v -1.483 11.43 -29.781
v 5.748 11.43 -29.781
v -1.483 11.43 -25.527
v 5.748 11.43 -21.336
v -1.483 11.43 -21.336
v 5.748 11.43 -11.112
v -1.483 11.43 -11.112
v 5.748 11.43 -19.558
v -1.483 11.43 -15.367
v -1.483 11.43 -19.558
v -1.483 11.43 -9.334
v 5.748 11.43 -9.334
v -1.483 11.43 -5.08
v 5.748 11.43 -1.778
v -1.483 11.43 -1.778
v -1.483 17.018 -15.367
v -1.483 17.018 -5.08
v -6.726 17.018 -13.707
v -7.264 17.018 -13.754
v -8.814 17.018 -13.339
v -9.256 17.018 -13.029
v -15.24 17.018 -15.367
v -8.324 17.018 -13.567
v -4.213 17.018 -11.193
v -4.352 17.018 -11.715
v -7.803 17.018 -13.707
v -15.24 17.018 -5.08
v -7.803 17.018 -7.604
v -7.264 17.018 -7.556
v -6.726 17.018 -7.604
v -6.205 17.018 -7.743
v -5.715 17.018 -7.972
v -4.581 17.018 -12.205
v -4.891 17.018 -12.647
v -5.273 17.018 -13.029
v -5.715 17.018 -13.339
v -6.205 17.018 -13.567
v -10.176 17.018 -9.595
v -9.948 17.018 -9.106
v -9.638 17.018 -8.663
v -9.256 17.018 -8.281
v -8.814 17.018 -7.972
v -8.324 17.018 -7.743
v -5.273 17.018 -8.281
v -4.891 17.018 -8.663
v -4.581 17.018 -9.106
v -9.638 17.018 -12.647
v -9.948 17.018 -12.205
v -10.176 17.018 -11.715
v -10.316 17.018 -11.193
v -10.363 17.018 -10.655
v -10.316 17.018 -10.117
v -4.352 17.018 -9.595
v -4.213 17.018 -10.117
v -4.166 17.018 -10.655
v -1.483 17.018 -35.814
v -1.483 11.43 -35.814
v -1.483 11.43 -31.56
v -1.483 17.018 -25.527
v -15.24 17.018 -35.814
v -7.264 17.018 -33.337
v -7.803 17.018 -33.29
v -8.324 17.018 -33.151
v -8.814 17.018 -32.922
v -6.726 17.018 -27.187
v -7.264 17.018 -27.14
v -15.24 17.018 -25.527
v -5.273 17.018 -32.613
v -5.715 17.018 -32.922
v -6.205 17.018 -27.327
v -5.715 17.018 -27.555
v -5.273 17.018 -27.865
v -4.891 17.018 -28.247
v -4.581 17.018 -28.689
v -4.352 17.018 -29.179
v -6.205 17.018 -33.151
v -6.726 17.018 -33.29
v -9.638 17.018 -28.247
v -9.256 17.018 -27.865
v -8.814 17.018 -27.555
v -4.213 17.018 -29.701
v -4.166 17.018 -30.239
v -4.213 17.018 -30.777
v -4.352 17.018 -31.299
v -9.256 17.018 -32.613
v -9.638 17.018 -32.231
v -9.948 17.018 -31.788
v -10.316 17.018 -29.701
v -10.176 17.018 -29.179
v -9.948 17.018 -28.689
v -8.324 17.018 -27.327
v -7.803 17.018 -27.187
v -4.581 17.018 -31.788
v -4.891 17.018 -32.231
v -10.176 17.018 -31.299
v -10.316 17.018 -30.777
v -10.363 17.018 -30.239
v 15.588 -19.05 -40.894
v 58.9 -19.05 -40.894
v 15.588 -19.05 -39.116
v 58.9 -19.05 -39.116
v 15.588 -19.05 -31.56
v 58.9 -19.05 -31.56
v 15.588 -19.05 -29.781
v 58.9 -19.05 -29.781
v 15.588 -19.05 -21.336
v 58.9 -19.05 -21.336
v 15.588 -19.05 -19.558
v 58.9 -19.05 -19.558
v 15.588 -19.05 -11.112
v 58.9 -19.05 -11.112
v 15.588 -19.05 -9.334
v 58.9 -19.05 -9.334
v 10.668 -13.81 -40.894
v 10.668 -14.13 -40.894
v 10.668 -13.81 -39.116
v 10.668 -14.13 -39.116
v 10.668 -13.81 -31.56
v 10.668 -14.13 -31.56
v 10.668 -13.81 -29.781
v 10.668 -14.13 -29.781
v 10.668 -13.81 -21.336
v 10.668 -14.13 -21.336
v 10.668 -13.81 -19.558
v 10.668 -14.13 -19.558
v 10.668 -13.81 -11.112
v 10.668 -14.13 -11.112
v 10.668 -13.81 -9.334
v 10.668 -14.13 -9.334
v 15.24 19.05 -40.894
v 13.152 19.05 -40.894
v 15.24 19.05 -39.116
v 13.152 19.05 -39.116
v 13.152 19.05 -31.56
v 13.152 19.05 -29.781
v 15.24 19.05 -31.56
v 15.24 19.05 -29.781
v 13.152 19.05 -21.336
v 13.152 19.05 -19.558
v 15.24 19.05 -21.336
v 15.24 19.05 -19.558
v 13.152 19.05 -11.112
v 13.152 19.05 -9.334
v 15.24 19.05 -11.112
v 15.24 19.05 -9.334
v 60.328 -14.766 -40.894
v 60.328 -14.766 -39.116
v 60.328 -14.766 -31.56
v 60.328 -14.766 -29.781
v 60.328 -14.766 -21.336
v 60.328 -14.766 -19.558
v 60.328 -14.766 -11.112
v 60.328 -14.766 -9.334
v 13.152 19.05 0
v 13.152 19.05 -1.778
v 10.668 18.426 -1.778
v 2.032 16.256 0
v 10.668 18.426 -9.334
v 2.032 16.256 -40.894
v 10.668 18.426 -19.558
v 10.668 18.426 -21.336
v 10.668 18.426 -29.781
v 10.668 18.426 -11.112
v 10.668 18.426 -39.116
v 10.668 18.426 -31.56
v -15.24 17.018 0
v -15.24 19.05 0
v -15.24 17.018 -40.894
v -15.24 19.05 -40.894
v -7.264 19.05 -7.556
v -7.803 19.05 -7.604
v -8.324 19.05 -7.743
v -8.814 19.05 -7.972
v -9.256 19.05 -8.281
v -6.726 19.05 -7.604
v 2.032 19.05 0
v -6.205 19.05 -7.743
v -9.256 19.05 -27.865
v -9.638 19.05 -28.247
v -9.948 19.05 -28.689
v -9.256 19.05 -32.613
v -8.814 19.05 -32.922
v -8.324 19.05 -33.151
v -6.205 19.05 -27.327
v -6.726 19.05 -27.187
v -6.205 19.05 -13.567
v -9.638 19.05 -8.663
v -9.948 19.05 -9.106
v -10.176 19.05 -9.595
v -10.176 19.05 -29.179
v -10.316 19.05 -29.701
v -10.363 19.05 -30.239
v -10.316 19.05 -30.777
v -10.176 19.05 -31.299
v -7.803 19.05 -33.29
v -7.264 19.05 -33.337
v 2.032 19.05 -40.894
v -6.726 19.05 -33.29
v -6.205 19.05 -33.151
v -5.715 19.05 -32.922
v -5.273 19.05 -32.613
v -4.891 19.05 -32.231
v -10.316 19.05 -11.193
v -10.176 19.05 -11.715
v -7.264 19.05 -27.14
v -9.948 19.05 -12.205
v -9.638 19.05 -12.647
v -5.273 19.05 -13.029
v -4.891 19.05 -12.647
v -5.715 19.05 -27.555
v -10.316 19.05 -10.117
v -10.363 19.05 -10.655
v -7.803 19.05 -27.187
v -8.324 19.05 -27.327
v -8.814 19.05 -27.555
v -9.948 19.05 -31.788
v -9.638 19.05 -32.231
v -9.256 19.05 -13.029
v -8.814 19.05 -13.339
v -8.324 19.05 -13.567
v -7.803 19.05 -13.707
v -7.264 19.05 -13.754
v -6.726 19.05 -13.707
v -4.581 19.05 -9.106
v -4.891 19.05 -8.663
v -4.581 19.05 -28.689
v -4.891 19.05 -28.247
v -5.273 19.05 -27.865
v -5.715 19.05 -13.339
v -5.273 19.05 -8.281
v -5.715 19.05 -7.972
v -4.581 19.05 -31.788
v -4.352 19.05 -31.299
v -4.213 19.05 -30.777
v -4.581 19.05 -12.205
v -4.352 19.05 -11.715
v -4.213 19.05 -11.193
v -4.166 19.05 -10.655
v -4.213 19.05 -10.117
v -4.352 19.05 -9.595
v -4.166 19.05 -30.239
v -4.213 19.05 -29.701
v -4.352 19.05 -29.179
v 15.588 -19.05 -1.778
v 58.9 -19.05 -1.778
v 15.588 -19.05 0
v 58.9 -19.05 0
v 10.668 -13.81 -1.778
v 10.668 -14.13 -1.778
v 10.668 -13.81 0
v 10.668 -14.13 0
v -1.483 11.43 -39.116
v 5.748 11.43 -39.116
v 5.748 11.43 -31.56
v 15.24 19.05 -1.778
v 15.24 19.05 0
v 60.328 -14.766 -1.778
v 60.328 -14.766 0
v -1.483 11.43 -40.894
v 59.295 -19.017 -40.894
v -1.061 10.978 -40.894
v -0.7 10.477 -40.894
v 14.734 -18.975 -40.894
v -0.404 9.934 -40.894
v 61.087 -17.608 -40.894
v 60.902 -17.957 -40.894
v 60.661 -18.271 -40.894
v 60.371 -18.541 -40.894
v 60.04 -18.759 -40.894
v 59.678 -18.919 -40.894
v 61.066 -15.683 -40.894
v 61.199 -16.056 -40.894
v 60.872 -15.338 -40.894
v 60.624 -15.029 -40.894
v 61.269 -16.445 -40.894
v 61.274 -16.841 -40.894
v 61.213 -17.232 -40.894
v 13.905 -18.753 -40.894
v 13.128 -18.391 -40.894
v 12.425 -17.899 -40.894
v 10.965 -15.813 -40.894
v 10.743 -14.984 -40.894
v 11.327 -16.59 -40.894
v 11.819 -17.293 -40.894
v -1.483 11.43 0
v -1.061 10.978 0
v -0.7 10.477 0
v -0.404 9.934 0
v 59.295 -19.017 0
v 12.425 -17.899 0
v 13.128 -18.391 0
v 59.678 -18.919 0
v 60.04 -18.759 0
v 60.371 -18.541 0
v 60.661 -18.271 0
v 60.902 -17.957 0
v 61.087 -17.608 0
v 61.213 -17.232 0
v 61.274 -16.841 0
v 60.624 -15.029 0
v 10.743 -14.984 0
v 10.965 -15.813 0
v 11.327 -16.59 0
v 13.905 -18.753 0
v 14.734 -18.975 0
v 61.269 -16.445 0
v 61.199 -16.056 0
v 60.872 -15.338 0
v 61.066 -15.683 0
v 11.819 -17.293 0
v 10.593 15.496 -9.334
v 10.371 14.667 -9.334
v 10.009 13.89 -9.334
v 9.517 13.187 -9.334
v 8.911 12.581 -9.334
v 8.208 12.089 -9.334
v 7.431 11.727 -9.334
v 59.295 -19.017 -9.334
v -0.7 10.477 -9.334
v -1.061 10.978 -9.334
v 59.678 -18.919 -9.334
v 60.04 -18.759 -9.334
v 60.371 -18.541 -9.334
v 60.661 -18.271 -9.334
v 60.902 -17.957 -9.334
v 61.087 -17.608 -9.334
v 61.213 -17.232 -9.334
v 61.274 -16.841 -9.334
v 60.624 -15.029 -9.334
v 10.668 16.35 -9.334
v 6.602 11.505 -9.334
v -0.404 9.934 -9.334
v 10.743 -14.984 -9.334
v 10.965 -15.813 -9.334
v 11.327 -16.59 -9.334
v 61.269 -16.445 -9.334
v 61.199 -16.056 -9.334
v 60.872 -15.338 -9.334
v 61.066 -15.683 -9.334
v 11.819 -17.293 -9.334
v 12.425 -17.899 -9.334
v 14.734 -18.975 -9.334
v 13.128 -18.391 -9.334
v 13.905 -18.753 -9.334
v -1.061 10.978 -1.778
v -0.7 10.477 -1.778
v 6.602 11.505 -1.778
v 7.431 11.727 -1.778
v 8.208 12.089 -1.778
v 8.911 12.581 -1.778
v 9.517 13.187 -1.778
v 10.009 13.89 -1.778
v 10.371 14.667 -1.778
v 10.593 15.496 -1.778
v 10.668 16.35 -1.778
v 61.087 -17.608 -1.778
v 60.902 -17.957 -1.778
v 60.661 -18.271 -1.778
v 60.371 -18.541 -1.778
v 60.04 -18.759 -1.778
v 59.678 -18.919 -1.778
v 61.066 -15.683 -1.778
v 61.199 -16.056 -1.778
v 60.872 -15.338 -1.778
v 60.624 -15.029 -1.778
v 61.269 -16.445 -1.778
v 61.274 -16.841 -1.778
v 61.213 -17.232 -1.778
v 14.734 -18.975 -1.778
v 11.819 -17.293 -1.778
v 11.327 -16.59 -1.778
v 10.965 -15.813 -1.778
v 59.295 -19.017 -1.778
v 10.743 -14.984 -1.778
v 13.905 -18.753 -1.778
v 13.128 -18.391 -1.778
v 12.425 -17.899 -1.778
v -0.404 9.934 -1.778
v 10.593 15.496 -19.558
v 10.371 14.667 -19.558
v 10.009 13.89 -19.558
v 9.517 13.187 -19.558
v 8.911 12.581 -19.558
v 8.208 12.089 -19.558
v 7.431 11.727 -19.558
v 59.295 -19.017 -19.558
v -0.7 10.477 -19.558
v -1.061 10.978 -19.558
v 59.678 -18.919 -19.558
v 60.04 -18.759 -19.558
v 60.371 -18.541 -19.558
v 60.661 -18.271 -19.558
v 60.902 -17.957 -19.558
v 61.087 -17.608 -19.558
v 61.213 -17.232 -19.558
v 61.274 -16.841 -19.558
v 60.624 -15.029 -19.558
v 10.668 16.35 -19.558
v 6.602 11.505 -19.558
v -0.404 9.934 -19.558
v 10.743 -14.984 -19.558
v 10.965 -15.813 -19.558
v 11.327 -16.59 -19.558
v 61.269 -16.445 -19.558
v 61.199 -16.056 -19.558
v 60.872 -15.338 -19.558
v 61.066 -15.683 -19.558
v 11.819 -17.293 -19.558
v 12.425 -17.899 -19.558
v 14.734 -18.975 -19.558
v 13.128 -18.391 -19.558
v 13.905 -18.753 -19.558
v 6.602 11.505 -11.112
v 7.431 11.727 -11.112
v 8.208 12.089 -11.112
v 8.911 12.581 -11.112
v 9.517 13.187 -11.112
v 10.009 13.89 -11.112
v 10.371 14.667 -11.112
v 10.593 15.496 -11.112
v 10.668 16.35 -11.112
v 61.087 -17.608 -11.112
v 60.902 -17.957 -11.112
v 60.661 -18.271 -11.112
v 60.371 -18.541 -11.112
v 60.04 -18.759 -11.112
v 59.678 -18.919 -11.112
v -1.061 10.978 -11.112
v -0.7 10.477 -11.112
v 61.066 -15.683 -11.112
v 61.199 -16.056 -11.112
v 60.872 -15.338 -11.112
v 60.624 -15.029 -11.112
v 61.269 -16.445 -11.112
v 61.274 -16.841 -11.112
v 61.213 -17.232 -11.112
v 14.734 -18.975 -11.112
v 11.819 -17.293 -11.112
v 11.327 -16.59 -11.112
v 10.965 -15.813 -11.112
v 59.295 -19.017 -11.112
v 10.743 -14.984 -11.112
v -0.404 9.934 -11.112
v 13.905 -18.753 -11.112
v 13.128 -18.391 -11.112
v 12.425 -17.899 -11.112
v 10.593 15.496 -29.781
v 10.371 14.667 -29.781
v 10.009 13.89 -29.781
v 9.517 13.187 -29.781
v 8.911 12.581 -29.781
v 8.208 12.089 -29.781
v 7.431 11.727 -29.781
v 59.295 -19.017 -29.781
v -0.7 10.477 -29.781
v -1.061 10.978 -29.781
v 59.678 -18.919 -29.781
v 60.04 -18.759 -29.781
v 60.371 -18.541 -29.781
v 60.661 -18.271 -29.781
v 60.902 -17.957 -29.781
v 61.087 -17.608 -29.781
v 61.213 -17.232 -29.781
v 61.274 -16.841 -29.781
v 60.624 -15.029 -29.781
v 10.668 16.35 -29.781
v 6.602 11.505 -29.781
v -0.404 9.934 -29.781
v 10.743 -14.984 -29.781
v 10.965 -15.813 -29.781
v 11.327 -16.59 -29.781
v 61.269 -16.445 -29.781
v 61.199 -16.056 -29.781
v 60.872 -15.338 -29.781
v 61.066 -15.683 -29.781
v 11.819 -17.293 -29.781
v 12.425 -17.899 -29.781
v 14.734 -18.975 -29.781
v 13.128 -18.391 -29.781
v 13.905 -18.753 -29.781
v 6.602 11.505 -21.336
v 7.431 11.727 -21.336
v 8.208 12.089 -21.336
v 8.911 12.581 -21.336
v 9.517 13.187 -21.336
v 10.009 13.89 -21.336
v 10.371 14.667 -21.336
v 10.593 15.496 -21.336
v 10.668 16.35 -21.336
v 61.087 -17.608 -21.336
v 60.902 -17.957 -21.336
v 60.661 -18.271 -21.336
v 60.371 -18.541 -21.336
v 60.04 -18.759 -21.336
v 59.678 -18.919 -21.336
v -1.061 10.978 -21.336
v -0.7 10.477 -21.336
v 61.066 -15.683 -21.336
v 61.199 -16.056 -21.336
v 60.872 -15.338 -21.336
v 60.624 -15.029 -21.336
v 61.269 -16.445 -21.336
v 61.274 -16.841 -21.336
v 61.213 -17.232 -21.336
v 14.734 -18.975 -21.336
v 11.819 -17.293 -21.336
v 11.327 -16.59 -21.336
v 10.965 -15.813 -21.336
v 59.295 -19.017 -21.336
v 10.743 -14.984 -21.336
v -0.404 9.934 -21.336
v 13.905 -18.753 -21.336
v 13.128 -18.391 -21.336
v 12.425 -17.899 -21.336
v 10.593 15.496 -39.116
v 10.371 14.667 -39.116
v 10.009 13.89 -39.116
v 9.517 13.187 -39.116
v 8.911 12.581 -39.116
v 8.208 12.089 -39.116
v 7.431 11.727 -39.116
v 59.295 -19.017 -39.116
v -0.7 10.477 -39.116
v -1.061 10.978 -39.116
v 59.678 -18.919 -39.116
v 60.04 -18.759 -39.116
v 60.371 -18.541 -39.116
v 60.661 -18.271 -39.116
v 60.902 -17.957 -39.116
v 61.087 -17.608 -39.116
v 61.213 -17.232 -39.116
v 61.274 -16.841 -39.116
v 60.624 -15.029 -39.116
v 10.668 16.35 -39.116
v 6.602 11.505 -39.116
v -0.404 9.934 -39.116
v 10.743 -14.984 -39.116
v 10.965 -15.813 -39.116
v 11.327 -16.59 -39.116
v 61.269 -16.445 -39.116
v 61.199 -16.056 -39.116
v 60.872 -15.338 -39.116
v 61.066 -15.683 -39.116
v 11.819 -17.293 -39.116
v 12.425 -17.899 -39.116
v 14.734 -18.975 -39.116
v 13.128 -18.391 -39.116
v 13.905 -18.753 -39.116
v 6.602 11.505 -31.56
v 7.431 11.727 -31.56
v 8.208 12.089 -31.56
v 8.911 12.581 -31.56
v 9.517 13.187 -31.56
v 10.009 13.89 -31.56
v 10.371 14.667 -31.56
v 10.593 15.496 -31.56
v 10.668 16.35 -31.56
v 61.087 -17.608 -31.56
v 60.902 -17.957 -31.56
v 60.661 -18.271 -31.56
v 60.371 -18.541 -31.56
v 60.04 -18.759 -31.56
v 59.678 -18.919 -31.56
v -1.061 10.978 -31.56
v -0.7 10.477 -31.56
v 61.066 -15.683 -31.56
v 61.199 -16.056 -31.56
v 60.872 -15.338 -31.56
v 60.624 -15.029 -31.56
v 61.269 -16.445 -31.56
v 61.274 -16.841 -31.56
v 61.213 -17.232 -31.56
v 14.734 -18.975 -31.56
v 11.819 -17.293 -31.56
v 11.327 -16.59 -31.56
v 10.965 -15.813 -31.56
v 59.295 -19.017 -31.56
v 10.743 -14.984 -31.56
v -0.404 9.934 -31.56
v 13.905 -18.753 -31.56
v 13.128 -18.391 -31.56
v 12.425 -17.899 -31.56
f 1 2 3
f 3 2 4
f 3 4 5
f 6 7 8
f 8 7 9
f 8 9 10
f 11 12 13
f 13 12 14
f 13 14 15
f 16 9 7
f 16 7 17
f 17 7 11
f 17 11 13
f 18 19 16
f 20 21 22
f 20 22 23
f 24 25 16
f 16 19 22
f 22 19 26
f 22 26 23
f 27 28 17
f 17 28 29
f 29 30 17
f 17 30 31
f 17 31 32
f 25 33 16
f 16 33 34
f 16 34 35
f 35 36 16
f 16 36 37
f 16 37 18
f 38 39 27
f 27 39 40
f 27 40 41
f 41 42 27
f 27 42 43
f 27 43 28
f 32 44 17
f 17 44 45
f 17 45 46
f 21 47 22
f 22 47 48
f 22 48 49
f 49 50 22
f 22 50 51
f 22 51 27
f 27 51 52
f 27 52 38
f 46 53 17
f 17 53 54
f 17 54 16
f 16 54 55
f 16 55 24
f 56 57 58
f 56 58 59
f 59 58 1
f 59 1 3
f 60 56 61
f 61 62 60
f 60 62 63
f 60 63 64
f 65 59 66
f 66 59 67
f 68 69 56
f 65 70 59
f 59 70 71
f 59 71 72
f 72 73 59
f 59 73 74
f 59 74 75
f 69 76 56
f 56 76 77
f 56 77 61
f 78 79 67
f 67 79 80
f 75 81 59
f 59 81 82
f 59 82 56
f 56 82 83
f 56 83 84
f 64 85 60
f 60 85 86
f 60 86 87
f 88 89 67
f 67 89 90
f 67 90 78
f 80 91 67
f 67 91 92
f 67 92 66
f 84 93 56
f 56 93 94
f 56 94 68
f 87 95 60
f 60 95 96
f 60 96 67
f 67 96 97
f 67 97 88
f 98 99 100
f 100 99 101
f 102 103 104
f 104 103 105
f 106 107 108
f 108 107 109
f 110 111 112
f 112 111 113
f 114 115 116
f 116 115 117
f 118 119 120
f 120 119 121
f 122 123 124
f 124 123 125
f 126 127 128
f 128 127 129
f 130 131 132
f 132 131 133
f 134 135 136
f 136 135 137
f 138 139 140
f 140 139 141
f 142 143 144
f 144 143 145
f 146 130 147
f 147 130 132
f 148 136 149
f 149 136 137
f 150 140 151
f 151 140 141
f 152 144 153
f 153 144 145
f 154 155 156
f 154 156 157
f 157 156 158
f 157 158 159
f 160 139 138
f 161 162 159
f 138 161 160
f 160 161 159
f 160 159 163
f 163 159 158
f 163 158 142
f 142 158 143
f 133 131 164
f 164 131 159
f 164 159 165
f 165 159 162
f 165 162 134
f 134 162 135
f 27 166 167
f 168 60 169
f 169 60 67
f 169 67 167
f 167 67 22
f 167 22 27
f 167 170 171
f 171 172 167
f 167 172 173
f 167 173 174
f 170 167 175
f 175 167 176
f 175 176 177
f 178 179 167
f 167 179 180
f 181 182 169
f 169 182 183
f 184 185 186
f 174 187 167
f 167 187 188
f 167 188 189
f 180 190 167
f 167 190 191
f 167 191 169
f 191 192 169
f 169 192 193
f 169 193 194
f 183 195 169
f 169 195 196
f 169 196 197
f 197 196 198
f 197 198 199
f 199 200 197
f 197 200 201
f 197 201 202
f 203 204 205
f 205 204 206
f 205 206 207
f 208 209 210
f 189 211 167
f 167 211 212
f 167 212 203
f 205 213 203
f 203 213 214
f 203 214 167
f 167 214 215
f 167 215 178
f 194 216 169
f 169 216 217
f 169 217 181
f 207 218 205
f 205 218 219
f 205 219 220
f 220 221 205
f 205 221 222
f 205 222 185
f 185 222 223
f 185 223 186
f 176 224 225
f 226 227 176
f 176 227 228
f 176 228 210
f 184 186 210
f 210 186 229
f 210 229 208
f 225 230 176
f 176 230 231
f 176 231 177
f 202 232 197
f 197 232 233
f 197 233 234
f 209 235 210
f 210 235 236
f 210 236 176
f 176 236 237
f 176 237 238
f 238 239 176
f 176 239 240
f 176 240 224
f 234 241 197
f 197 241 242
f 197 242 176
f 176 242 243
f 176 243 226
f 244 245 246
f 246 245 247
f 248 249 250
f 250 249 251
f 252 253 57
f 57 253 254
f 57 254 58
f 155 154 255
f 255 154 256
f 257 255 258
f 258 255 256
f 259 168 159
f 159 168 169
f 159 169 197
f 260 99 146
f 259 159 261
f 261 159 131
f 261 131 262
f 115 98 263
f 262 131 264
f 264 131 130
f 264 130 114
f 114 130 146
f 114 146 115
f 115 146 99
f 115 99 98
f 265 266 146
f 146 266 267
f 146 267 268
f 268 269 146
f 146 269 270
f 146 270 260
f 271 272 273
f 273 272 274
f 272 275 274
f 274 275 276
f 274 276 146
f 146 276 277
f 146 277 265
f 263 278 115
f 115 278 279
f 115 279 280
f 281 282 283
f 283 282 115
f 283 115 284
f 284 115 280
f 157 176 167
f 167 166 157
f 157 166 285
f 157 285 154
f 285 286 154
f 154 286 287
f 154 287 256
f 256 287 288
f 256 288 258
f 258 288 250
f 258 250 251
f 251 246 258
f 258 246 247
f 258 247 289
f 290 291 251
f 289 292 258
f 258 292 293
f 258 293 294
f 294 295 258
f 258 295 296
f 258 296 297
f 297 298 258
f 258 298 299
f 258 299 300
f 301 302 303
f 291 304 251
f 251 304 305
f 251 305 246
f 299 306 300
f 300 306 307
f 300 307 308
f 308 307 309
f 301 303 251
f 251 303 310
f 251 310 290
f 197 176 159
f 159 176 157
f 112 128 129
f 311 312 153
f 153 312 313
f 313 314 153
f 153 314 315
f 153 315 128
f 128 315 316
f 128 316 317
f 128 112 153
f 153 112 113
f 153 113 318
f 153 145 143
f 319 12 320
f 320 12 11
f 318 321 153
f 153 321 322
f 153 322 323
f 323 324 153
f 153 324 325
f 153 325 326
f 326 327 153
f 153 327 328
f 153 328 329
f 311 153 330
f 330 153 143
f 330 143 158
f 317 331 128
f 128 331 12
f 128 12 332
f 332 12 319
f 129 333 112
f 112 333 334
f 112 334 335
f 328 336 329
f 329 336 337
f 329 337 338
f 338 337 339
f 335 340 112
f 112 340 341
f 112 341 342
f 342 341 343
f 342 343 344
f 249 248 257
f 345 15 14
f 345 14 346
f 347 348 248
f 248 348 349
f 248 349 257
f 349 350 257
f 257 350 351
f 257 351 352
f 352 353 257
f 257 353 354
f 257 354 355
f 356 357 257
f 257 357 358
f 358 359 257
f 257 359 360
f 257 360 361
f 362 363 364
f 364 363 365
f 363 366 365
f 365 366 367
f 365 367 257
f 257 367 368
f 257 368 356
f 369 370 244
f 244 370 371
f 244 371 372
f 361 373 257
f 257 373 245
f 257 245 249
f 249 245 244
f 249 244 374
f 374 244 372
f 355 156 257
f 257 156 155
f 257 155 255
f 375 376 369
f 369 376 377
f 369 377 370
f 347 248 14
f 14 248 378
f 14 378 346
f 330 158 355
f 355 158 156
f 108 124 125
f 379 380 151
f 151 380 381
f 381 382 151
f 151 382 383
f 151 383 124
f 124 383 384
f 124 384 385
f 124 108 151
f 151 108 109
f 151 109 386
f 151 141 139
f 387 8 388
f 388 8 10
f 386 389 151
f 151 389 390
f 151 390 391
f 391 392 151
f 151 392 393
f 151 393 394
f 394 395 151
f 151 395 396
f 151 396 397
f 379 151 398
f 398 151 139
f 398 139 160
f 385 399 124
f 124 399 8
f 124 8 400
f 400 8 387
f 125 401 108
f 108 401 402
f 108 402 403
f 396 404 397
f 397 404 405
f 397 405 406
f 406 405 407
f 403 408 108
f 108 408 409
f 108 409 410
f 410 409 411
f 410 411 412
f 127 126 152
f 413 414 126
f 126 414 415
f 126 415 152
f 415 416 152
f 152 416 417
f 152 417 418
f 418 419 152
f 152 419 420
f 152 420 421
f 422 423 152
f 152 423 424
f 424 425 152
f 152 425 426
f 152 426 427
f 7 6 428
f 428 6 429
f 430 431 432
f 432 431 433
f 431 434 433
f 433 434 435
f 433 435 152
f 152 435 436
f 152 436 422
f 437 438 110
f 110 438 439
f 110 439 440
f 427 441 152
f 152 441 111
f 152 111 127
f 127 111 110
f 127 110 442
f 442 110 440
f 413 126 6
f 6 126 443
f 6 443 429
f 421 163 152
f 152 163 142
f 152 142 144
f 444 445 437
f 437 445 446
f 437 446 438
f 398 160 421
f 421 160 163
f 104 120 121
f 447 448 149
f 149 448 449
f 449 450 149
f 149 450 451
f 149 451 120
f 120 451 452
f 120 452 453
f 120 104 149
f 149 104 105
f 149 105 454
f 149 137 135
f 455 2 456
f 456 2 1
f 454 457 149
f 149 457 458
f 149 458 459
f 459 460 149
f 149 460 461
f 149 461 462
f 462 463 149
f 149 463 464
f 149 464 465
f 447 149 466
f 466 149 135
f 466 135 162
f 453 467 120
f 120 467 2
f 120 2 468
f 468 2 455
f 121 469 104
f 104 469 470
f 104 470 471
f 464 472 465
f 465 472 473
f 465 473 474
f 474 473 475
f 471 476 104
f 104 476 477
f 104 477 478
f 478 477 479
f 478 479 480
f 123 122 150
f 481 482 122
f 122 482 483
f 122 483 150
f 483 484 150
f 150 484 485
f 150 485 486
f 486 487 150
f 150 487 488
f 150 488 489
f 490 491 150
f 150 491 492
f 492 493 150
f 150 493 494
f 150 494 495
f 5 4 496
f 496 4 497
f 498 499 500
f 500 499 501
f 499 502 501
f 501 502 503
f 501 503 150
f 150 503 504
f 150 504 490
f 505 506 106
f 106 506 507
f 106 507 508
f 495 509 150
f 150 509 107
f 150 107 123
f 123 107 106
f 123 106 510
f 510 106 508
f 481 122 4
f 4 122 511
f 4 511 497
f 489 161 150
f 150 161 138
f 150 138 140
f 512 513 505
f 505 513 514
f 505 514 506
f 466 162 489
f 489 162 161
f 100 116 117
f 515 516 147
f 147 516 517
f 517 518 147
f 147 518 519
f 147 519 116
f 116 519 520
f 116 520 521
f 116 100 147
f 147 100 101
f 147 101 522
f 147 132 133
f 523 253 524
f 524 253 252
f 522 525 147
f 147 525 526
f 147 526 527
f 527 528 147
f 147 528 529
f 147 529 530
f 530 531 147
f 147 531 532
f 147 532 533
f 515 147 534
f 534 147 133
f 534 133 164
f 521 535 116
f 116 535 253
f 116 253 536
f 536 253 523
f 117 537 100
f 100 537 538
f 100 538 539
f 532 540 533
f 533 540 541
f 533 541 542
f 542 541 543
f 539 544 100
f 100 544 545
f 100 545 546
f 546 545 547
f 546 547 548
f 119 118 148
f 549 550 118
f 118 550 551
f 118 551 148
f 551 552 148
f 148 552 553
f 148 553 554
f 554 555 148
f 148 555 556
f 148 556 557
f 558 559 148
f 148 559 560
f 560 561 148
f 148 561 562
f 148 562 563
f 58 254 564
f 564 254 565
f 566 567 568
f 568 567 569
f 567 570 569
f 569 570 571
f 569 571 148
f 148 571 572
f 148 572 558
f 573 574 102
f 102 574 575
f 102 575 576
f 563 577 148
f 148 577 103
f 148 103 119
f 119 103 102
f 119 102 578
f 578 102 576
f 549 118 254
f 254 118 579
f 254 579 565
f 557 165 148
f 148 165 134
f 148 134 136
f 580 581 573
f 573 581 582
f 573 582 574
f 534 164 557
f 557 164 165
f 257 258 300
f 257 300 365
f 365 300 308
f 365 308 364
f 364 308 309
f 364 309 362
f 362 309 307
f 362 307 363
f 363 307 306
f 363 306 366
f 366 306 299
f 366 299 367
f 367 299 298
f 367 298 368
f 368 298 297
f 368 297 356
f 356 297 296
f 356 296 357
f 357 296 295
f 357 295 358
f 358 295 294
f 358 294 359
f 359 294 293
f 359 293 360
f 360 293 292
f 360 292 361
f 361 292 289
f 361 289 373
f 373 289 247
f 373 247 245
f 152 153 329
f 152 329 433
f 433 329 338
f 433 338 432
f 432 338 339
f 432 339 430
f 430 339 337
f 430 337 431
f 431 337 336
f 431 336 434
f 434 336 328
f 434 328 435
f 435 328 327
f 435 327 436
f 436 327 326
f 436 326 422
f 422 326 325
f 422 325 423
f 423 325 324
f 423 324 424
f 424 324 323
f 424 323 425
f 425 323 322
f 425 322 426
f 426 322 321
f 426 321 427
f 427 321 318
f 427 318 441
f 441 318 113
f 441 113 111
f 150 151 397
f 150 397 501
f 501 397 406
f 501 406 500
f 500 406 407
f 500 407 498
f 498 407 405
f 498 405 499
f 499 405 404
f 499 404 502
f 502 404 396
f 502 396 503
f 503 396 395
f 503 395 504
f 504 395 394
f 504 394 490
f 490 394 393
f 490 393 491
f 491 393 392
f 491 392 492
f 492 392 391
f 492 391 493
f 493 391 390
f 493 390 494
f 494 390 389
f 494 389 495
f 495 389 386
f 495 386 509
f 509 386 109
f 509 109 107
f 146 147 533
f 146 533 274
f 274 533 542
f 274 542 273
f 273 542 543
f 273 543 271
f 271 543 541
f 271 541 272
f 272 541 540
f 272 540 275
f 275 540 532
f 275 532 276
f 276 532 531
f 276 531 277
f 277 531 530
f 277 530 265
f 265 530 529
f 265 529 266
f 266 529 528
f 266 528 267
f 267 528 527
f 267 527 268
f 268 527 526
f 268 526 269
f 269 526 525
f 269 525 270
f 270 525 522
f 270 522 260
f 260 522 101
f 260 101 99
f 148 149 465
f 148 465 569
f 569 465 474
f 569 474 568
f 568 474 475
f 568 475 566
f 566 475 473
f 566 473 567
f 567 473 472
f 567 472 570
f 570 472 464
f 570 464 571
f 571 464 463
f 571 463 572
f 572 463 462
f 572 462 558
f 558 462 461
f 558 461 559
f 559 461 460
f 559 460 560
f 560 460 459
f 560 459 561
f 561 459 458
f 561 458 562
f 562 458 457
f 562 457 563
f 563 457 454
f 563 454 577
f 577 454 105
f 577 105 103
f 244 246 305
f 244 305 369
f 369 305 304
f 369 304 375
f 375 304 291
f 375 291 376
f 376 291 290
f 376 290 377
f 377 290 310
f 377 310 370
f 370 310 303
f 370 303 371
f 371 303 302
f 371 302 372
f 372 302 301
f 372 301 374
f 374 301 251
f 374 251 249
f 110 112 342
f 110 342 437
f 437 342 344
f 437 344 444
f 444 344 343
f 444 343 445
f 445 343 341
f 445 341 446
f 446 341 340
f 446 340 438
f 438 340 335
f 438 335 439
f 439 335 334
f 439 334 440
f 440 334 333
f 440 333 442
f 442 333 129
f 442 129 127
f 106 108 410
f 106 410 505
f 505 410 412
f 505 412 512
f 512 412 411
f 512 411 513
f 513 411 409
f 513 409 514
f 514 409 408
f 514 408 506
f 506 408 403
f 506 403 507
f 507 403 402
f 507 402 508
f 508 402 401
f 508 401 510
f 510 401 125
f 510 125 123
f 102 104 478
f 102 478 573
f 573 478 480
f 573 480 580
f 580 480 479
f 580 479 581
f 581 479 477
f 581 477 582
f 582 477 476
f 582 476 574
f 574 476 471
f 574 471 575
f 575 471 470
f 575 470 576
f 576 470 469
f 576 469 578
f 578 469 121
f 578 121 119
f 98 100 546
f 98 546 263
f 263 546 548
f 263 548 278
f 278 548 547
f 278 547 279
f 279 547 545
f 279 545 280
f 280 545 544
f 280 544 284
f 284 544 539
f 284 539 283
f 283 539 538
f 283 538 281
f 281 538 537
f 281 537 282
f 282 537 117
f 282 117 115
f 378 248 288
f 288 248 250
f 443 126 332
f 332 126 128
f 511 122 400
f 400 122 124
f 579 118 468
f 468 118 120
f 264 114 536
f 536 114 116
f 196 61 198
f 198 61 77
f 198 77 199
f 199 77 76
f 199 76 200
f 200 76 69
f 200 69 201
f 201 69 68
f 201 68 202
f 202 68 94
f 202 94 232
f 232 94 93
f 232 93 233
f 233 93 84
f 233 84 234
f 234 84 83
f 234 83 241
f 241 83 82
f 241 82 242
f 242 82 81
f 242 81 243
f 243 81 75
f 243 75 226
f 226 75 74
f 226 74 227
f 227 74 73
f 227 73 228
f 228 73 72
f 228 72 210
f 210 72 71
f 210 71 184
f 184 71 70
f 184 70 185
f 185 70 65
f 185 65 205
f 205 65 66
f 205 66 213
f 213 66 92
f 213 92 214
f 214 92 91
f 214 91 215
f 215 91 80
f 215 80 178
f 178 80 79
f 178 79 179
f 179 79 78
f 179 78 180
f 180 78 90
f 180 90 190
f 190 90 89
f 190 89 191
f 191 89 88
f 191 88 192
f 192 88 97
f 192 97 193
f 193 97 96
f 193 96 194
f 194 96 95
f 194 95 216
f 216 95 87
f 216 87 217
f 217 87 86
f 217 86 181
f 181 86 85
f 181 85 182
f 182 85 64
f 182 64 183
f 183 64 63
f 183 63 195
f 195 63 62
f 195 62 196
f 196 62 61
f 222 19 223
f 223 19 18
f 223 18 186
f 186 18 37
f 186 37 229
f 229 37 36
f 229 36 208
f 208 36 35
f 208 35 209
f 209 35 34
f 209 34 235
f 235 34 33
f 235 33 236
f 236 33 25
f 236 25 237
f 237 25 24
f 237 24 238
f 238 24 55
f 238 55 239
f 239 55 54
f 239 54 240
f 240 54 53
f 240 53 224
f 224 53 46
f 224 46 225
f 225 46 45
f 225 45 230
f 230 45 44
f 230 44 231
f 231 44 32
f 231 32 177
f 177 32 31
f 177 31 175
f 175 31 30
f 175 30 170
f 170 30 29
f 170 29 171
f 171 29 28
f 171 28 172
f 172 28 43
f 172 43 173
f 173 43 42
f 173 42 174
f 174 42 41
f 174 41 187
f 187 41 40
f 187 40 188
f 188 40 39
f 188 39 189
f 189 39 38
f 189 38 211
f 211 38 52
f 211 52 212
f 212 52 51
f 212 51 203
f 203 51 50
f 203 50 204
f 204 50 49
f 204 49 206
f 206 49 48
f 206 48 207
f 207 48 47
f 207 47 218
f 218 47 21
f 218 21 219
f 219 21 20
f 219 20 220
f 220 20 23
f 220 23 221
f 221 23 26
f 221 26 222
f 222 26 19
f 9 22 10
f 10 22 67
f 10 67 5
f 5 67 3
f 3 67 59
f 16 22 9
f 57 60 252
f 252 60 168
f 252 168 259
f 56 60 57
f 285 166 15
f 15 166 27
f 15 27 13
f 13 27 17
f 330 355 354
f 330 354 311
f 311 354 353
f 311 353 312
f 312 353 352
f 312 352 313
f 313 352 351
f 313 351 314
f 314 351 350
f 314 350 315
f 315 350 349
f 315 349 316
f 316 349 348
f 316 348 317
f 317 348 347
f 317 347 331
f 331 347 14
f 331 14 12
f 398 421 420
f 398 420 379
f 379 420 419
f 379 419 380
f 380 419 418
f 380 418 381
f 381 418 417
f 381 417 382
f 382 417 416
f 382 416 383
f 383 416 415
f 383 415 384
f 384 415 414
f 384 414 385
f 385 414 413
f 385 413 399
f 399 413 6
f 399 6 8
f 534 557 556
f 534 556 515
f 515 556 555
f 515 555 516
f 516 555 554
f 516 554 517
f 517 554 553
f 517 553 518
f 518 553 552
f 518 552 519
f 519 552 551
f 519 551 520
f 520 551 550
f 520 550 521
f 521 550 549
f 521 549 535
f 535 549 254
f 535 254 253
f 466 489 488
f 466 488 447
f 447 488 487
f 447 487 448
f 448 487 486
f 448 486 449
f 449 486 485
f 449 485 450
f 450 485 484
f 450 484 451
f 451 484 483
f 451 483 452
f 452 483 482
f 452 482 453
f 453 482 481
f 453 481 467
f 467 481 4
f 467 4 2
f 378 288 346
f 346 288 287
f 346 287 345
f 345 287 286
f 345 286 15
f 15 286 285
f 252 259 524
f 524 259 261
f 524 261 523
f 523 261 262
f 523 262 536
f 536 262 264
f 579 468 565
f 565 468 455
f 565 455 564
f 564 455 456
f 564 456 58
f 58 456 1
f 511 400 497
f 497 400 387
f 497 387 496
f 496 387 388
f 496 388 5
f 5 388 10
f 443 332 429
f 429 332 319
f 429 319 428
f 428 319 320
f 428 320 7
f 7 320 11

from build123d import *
from OCP.BRepFilletAPI import BRepFilletAPI_MakeChamfer

# Parameters (mm, degrees)
BOSS_EXTRUDE1_DEPTH = 40.894
SKETCH3_W           = 13.757082797
SKETCH3_H           = 5.588
CUT_EXTRUDE2_DEPTH  = 40.894
SKETCH6_W           = 7.5565
SKETCH6_H           = 30.48
SKETCH6_H_2         = 7.62
SKETCH6_W_2         = 8.4455
CUT_EXTRUDE4_DEPTH  = 72.423246356
FILLET1_R           = 2.38
FILLET2_R           = 4.92
CHAMFER1_SIZE       = 25.24
CHAMFER1_SIZE2      = 11.769605292
SKETCH9_R           = 3.0988
CUT_EXTRUDE5_DEPTH  = 83.027180008
BOSS_EXTRUDE3_DEPTH = 5.08
BOSS_EXTRUDE4_DEPTH = 5.08
FILLET3_R           = 4.92
FILLET4_R           = 4.92


with BuildPart() as part:
    # Sketch1 → Boss-Extrude1 (new body)
    with BuildSketch(Plane.XY):
        Polygon((66.04, -19.05), (15.24, 19.05), (-15.24, 19.05), (-15.24, 11.43), (10.668, 11.43), (10.668, -19.05), align=None)
    extrude(amount=-BOSS_EXTRUDE1_DEPTH)

    # Sketch3 → Cut-Extrude2 (cut)
    with BuildSketch(Plane(origin=(0, 0, -40.894), x_dir=(-1, 0, 0), z_dir=(0, 0, -1))):
        with Locations((8.361458602, 14.224)):
            Rectangle(SKETCH3_W, SKETCH3_H)
        Polygon((-2.032, 16.256), (-2.032, 19.05), (-13.15212, 19.05), align=None)
    extrude(amount=-CUT_EXTRUDE2_DEPTH, mode=Mode.SUBTRACT)

    # Sketch6 → Cut-Extrude4 (cut, through all)
    with BuildSketch(Plane.ZY.offset(-10.668)):
        with Locations((-35.33775, -3.81)):
            Rectangle(SKETCH6_W, SKETCH6_H)
        with Locations((-35.33775, 15.24)):
            Rectangle(SKETCH6_W, SKETCH6_H_2)
        with Locations((-25.55875, 15.24)):
            Rectangle(SKETCH6_W_2, SKETCH6_H_2)
        with Locations((-25.55875, -3.81)):
            Rectangle(SKETCH6_W_2, SKETCH6_H)
        with Locations((-15.33525, -3.81)):
            Rectangle(SKETCH6_W_2, SKETCH6_H)
        with Locations((-15.33525, 15.24)):
            Rectangle(SKETCH6_W_2, SKETCH6_H_2)
        with Locations((-5.55625, 15.24)):
            Rectangle(SKETCH6_W, SKETCH6_H_2)
        with Locations((-5.55625, -3.81)):
            Rectangle(SKETCH6_W, SKETCH6_H)
    extrude(amount=-CUT_EXTRUDE4_DEPTH, mode=Mode.SUBTRACT)

    # Fillet1
    fillet1_edges = [part.edges().sort_by_distance(p)[0] for p in [
        (66.04, -19.05, -40.005),
        (66.04, -19.05, -30.6705),
        (66.04, -19.05, -20.447),
        (66.04, -19.05, -10.2235),
        (66.04, -19.05, -0.889),
    ]]
    fillet(fillet1_edges, radius=FILLET1_R)

    # Fillet2
    fillet2_edges = [part.edges().sort_by_distance(p)[0] for p in [
        (10.668, -19.05, -40.005),
        (10.668, -19.05, -30.6705),
        (10.668, -19.05, -20.447),
        (10.668, -19.05, -10.2235),
        (10.668, -19.05, -0.889),
    ]]
    fillet(fillet2_edges, radius=FILLET2_R)

    # Chamfer1: one chamfer whose edges measure the first distance from different faces: ONE call of the kernel's chamfer builder (chamfer() names one face for all edges)
    chamfer1_edges_1 = [part.edges().sort_by_distance(p)[0] for p in [
        (10.668, 11.43, -40.005),
    ]]
    chamfer1_side_1 = [part.faces().sort_by_distance(p)[0] for p in [
        (10.668, -1.35, -40.005),
    ]]
    chamfer1_edges_2 = [part.edges().sort_by_distance(p)[0] for p in [
        (10.668, 11.43, -30.6705),
    ]]
    chamfer1_side_2 = [part.faces().sort_by_distance(p)[0] for p in [
        (10.668, -1.35, -30.6705),
    ]]
    chamfer1_edges_3 = [part.edges().sort_by_distance(p)[0] for p in [
        (10.668, 11.43, -20.447),
    ]]
    chamfer1_side_3 = [part.faces().sort_by_distance(p)[0] for p in [
        (10.668, -1.35, -20.447),
    ]]
    chamfer1_edges_4 = [part.edges().sort_by_distance(p)[0] for p in [
        (10.668, 11.43, -10.2235),
    ]]
    chamfer1_side_4 = [part.faces().sort_by_distance(p)[0] for p in [
        (10.668, -1.35, -10.2235),
    ]]
    chamfer1_edges_5 = [part.edges().sort_by_distance(p)[0] for p in [
        (10.668, 11.43, -0.889),
    ]]
    chamfer1_side_5 = [part.faces().sort_by_distance(p)[0] for p in [
        (10.668, -1.35, -0.889),
    ]]
    chamfer1 = BRepFilletAPI_MakeChamfer(part.part.solid().wrapped)
    for e in chamfer1_edges_1:
        chamfer1.Add(CHAMFER1_SIZE, CHAMFER1_SIZE2, e.wrapped, chamfer1_side_1[0].wrapped)  # the first distance lies on this face
    for e in chamfer1_edges_2:
        chamfer1.Add(CHAMFER1_SIZE, CHAMFER1_SIZE2, e.wrapped, chamfer1_side_2[0].wrapped)  # the first distance lies on this face
    for e in chamfer1_edges_3:
        chamfer1.Add(CHAMFER1_SIZE, CHAMFER1_SIZE2, e.wrapped, chamfer1_side_3[0].wrapped)  # the first distance lies on this face
    for e in chamfer1_edges_4:
        chamfer1.Add(CHAMFER1_SIZE, CHAMFER1_SIZE2, e.wrapped, chamfer1_side_4[0].wrapped)  # the first distance lies on this face
    for e in chamfer1_edges_5:
        chamfer1.Add(CHAMFER1_SIZE, CHAMFER1_SIZE2, e.wrapped, chamfer1_side_5[0].wrapped)  # the first distance lies on this face
    add(Compound.cast(chamfer1.Shape()), mode=Mode.REPLACE)

    # Sketch9 → Cut-Extrude5 (cut, through all)
    with BuildSketch(Plane.XZ.offset(-17.018)):
        with Locations(Location((-7.2644, -10.6553, 0), (0, 0, 270))):
            Circle(SKETCH9_R)
        with Locations(Location((-7.2644, -30.2387, 0), (0, 0, 270))):
            Circle(SKETCH9_R)
    extrude(amount=-CUT_EXTRUDE5_DEPTH, mode=Mode.SUBTRACT)

    # Sketch10 → Boss-Extrude3 (add, symmetric)
    with BuildSketch(Plane(origin=(0, 0, -20.447), x_dir=(-1, 0, 0), z_dir=(0, 0, -1))):
        Polygon((1.482917203, 17.018), (15.24, 17.018), (1.482917203, 11.43), align=None)
    extrude(amount=BOSS_EXTRUDE3_DEPTH, both=True)

    # Sketch11 → Boss-Extrude4 (add)
    with BuildSketch(Plane(origin=(0, 0, -40.894), x_dir=(-1, 0, 0), z_dir=(0, 0, -1))):
        Polygon((1.482917203, 17.018), (15.24, 17.018), (1.482917203, 11.43), align=None)
    boss_extrude4 = extrude(amount=-BOSS_EXTRUDE4_DEPTH)

    # Mirror1: Boss-Extrude4 across plane
    add(boss_extrude4.mirror(Plane(origin=(0, 0, -20.447), x_dir=(1, 0, 0), z_dir=(0, 0, -1))))

    # Fillet3
    fillet3_edges = [part.edges().sort_by_distance(p)[0] for p in [
        (10.668, 11.43, -25.55875),
        (10.668, 11.43, -15.33525),
        (10.668, 11.43, -5.55625),
        (10.668, 11.43, -35.33775),
    ]]
    fillet(fillet3_edges, radius=FILLET3_R)

    # Fillet4
    # the kernel refuses this fillet: 4.92 mm, written as the material it adds along each edge
    with BuildSketch(Plane(origin=(-1.101605292, 11.43, 0), x_dir=(-1, 0, 0), z_dir=(0, 0, -1)), Plane(origin=(-1.101605292, 11.43, -39.116), x_dir=(-1, 0, 0), z_dir=(0, 0, -1)), Plane(origin=(-1.101605292, 11.43, -29.7815), x_dir=(-1, 0, 0), z_dir=(0, 0, -1)), Plane(origin=(-1.101605292, 11.43, -19.558), x_dir=(-1, 0, 0), z_dir=(0, 0, -1)), Plane(origin=(-1.101605292, 11.43, -9.3345), x_dir=(-1, 0, 0), z_dir=(0, 0, -1))) as fillet4_piece_1:
        with BuildLine():
            CenterArc((3.761612208, -3.574908377), FILLET4_R, 133.397271211, 21.602728789)
            Line((-0.697422104, -1.495626529), (-0.78660279, -1.454040892))
            Line((-0.78660279, -1.454040892), (-0.089180686, 0.041585637))
            Line((-0.089180686, 0.041585637), (0, 0.0984))
            ThreePointArc((0, 0.0984), (0.190655955, 0.0984), (0.313705905, 0.071498168))
            Line((0.313705905, 0.071498168), (0.381311911, 0))
        make_face()
    extrude(amount=1.778)


solid = part.part
